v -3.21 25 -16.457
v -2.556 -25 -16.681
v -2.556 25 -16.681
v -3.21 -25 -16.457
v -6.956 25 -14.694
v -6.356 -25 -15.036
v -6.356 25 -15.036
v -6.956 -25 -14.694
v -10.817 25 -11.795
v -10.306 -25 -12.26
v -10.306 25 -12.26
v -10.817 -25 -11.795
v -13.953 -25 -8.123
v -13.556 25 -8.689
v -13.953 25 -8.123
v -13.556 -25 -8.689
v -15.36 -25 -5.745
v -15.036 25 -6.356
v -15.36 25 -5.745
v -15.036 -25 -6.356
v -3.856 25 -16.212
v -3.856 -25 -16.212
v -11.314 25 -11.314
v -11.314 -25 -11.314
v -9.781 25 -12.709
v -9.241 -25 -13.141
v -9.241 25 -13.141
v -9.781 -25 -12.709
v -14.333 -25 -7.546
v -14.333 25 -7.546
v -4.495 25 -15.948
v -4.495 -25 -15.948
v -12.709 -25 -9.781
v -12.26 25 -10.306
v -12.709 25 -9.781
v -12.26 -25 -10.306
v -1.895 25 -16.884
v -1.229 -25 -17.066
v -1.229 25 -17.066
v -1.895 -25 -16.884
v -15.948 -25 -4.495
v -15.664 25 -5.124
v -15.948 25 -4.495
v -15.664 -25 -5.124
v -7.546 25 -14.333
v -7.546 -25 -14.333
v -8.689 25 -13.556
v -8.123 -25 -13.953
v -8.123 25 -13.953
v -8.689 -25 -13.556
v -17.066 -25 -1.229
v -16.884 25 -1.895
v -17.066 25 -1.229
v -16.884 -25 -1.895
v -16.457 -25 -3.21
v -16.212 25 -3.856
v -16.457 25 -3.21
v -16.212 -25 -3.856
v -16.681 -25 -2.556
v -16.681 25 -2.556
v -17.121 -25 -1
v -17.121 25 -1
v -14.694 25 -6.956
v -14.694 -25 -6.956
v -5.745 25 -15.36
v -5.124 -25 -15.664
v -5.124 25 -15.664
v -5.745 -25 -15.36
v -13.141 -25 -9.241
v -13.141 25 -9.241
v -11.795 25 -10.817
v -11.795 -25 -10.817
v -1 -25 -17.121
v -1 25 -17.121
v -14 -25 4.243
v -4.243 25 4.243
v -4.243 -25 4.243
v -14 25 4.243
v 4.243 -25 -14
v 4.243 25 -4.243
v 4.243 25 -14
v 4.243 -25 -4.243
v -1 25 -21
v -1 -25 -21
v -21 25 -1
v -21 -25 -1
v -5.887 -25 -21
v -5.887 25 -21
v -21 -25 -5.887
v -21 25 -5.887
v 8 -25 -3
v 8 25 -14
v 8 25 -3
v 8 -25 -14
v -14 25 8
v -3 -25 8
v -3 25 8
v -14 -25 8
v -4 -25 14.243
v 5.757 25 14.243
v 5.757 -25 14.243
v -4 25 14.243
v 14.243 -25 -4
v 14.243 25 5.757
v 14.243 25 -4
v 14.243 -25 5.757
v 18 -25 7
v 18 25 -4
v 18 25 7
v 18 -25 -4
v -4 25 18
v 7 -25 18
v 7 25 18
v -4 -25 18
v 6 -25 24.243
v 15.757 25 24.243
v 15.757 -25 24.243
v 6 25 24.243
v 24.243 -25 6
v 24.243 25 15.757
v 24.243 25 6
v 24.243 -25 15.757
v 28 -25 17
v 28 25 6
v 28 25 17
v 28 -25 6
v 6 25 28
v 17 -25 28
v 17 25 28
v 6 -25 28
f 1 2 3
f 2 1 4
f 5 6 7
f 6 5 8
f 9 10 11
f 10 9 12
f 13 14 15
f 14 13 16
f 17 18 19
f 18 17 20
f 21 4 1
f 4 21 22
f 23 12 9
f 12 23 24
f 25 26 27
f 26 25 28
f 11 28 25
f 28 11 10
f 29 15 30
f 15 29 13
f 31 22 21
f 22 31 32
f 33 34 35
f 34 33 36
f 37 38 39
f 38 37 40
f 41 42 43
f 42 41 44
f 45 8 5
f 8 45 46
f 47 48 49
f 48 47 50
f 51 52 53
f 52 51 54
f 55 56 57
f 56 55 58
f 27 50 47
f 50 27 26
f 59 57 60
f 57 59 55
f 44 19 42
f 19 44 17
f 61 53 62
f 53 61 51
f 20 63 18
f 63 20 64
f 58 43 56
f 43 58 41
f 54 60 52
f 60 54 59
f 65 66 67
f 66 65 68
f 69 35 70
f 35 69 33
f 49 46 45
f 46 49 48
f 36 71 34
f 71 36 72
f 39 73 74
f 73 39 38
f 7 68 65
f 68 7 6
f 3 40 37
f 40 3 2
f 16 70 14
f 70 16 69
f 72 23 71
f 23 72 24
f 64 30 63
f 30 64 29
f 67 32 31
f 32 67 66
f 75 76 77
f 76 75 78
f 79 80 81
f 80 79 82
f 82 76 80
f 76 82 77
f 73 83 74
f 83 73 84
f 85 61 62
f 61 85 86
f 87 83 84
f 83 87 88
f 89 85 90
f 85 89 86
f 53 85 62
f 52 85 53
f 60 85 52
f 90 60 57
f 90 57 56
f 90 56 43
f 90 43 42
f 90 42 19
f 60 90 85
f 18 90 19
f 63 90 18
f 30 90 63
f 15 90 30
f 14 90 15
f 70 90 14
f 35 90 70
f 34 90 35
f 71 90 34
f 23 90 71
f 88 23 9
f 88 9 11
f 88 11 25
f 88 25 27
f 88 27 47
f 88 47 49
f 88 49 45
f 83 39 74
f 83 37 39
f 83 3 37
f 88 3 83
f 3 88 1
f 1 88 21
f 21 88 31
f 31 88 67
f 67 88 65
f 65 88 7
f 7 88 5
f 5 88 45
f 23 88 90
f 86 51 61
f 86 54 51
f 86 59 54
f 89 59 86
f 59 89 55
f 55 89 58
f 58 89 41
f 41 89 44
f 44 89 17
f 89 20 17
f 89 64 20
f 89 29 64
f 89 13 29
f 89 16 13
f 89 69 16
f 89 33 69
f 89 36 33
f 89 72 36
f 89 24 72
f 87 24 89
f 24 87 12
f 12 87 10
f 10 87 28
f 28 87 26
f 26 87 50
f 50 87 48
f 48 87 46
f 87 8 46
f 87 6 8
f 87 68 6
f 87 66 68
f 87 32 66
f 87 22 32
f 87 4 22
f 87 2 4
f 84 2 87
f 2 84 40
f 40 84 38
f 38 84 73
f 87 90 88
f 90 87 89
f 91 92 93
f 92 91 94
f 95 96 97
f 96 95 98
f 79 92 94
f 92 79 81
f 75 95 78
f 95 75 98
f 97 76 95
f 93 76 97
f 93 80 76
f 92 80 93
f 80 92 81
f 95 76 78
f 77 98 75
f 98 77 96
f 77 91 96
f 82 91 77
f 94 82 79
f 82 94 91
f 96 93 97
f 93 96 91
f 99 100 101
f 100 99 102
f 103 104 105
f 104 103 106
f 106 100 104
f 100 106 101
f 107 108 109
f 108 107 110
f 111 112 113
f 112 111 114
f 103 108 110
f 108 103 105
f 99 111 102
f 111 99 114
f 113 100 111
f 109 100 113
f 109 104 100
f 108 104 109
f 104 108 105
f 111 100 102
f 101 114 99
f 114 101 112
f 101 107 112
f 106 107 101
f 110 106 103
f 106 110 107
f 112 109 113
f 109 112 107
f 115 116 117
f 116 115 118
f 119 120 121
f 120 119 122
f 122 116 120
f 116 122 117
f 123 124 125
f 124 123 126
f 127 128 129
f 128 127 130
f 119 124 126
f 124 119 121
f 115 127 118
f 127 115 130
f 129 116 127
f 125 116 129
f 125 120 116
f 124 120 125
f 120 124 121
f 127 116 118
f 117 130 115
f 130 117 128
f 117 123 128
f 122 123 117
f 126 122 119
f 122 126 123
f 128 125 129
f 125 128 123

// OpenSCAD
// file: beam_holder.scad
include <constants.scad>

use <helpers.scad>

module wood_beam(length=100, diameter=BEAM_DIAMETER, cut_height=6) {
    radius = diameter / 2;
    cut_width = diameter + 2;
    translate([0, 0, cut_height]) {
        difference() {
            rotate([0,-45,0]) {
                difference() {
                    rotate([-90,0,0]) {
                        cylinder(length, radius, radius);
                    }
                    translate([-cut_width / 2, -1, 0]) {
                        cube([cut_width, length + 2, cut_width]);
                    }
                    translate([0, -1, -cut_width / 2]) {
                        cube([cut_width, length + 2, cut_width]);
                    }
                }
            }
            translate([-cut_width / 2, -1, -cut_height]) {
                cube([cut_width, length + 2, cut_width]);
            }
        }
    }
}


module screw_block_joint(width=SCREW_BLOCK_WIDTH, bracket=BRACKET_WALL, outline=0) {
    translate([-8 - outline, 0, bracket - outline]) {
        soft_corner_bracket(bracket + 1 + outline, width, bracket + 2 * outline);
    }
    translate([8 + outline, 0, bracket - outline]) {
        mirror([1, 0, 0]) {
            soft_corner_bracket(bracket + 1 + outline, width, bracket + 2 * outline);
        }
    }
    translate([-5 - outline, 0, -1]) {
        cube([10 + 2 * outline, width, 2 * bracket + 1 + outline]);
    }

        translate([-5 - outline, 0, bracket - outline]) {
            fillet(width, 1);
        }
        translate([5 + outline, 0, bracket - outline]) {
            mirror([1, 0, 0]) fillet(width, 1);
        }

}


module wood_beam_with_block(length=10, diameter=BEAM_DIAMETER, cut_height=6, b_height=25, inset=0) {
    join_to = (cos(45) *  diameter / 2) - cut_height;
    b_width = (sin(45) *  diameter) - (inset*2);
    if (diameter != BEAM_DIAMETER) { echo(b_width); }
    wood_beam(length, diameter);
    translate([-b_width/2, 0, -join_to]) cube([b_width, length, b_height + join_to]);
}

module wood_beam_loop(length=SCREW_BLOCK_WIDTH, height=25, diameter=BEAM_DIAMETER, r=BEAM_LOOP_DELTA, i=1) {
    outer_diameter = diameter + 2 * r;
    difference() {
        wood_beam_with_block(length, outer_diameter, b_height=height);
        translate([0, -1, 0]) {
            wood_beam_with_block(length+2, diameter, b_height=height+1, inset=i);
            hull() {
                wood_beam(length+2, diameter);
                translate([0, 0, JOINT_SAFETY]) {
                    wood_beam(length+2, diameter);
                }
            }
        }
    }
}

module wood_beam_holder_joint(length=SCREW_BLOCK_WIDTH, diameter=BEAM_DIAMETER, bracket=BRACKET_WALL, i=1) {
    width = (sin(45) *  diameter - 2 * i);
    translate([0, 0, 0]) {
        screw_block_joint(length, bracket);
    }
    translate([-width/2, 0, -bracket - JOINT_SAFETY]) {
        cube([width, length, bracket]);
    }

    translate([width/2, 0, -bracket - JOINT_SAFETY]) {
        fillet(length);
    }
    translate([-width/2, 0, -bracket - JOINT_SAFETY]) {
        mirror([1,0,0]) fillet(length);
    }
}

module wood_beam_holder(length=SCREW_BLOCK_WIDTH, height=LOOP_WALL_HEIGHT, diameter=BEAM_DIAMETER, r=BEAM_LOOP_DELTA, i=1, bracket=BRACKET_WALL) {
    inner_width = (sin(45) *  diameter - 2 * i);
    outer_width = (sin(45) *  (diameter + 2 * r));
    translate([0, 0, -height - JOINT_SAFETY]) {
        wood_beam_loop(length, height, diameter, r, i);
    }
    wood_beam_holder_joint(length, diameter, bracket);
}

module senkkopf(outer_diameter=10, inner_diameter=4, height=20) {
    outer_radius = outer_diameter / 2;
    inner_radius = inner_diameter / 2;
    radius_diff = outer_radius - inner_radius;
    cylinder(radius_diff, outer_radius, inner_radius);
    cylinder(height, inner_radius, inner_radius);
}

module screw_block_base(width=SCREW_BLOCK_WIDTH) {
    difference() {
        translate([-LOOP_ATTACHMENT_WIDTH / 2, 0, 0]) {
            cube([LOOP_ATTACHMENT_WIDTH, width, LOOP_ATTACHMENT_HEIGHT]);
        }
        // roof
        translate([0, -1, LOOP_ATTACHMENT_HEIGHT]) {
            rotate([0, 90 - DWARF_ANGLE / 2, 0]) {
                cube([LOOP_ATTACHMENT_WIDTH, width + 2, LOOP_ATTACHMENT_HEIGHT]);
            }
        }
        translate([-LOOP_ATTACHMENT_WIDTH /2, -1, 0]) {
            rotate([0, 270 + DWARF_ANGLE / 2, 0]) {
                cube([LOOP_ATTACHMENT_WIDTH, width + 2, LOOP_ATTACHMENT_HEIGHT]);
            }
        }
        translate([0, -50, LOOP_ATTACHMENT_HEIGHT]) {
            roof();
        }
        // joint for lower thingy
        translate([0, -1, 0]) {
            screw_block_joint(SCREW_BLOCK_WIDTH+2, BRACKET_WALL, outline=JOINT_SAFETY);
        }
        // screw hole
        translate([0, width/2, 2 * BRACKET_WALL-0.5]){
            senkkopf();
        }
    }
}

screw_block_base();
// file: angled_plates.scad
function join_width(width, angle) =
    let (half_angle = angle / 2)
    let (x_cut = width / cos(half_angle))
    x_cut / tan(half_angle);


module angled_plate_round_corner(diameter=5, angle=45, length=100) {
    radius = diameter / 2;
    half_angle = angle / 2;
    x_width = cos(half_angle) * diameter;
    y_height = (x_width / 2) / tan(half_angle);
    y_cylinder_offset = sin(half_angle) * radius;
    translate([0, 0, -y_height]) {
        difference() {
            translate([-x_width/2, 0, 0]) {
                cube([x_width, length, y_height]);
            }
            translate([0, -5, -y_cylinder_offset]) {
                rotate([-90, 0, 0]){
                    cylinder(length + 10, radius, radius);
                }
            }
        }
    }
}


module angled_plates_helper(length=100, height=50, width=10, angle=85, corner_diameter=5) {
    half_angle = angle / 2;
    z_offset = join_width(width, angle);
    union() {
        rotate([0, half_angle, 0]) {
            translate([-0, 0, -height]) {
                cube ([width, length, height]);
            }
        }
        rotate([0, -half_angle, 0]) {
            translate([-width, 0, -height]) {
                cube ([width, length, height]);
            }
        }
        translate([0,0, -z_offset]) {
            angled_plate_round_corner(corner_diameter, angle, length);
        }
    }
}

module angled_plates(length=100, height=50, width=10, angle=85, outer_diameter=10, inner_diameter=5) {
    half_angle = angle/2;
    z_offset = join_width(width, angle);
    rotate([0 ,-half_angle-90, 0]) {
        union() {
            difference () {
                angled_plates_helper(length, height, width, angle, inner_diameter);
                translate([0, -1, z_offset]) {
                    angled_plates_helper(length+2, height, width, angle, outer_diameter);
                }
            }
        }
    }
}

angled_plates();
// file: helpers.scad
include <constants.scad>

use <angled_plates.scad>

module fillet(length=10, radius=5) {
    join_safety = 0.5;
    translate([-radius, 0, -radius]) {
        difference() {
            cube([radius + join_safety, length, radius  + join_safety]);
            translate([0, -1, 0]) {
                rotate([-90, 0, 0]) {
                    cylinder(length + 2, radius, radius);
                }
            }
        }
    }
}


module soft_corner_bracket(length=5, width=5, height=3) {
    radius = height / 4;
    translate([radius, 0, 0 ]) cube([length-radius, width, height]);
    translate([0, 0, radius ]) cube([length, width, height-radius*2]);
    translate([radius, 0, radius]) rotate([-90, 0, 0])cylinder(width, radius, radius);
    translate([radius, 0, height-radius]) rotate([-90, 0, 0])cylinder(width, radius, radius);
}

module living_room_roof(angle=LIVING_ROOM_ANGLE, length=100) {
    rotate([90-angle,0,0]) {
        translate([-length*2, -length, -length*2]) {
            cube([length*4, length , length*4]);
        }
    }
}

module roof(angle=DWARF_ANGLE, diameter=5, lr_angle=LIVING_ROOM_ANGLE, length=100, width=5) {
    half_angle = angle/2;
    z_offset = join_width(5, angle);
    translate([0, 0, z_offset]) {
        difference() {
            rotate([0 ,half_angle+90, 0]) {
                angled_plates(length, 100, width, angle, diameter*2, diameter);
            }
            living_room_roof(lr_angle, length);
        }
    }
}
// file: constants.scad
BEAM_DIAMETER = 44;
BEAM_LOOP_DELTA = 1;
BEAM_LOOP_DIAMETER = BEAM_DIAMETER + 2 * BEAM_LOOP_DELTA;
DWARF_ANGLE = 85;
LIVING_ROOM_ANGLE = 37;

LOOP_WALL_HEIGHT = 15;
LOOP_ATTACHMENT_WIDTH = (sin(45) *  BEAM_LOOP_DIAMETER);
LOOP_ATTACHMENT_HEIGHT = (LOOP_ATTACHMENT_WIDTH/2) / tan(DWARF_ANGLE/2);

SCREW_BLOCK_WIDTH = 15;
BRACKET_WALL = 3;
BRACKET_LENGTH = 5;
JOINT_SAFETY = 0.2;

ELECTRONIC_BASE_HEIGHT = 2;
ELECTRONIC_DIAMETER = 44; // must be large enough to fit the electronics

$fn = 200;
// main file
include <constants.scad>

use <helpers.scad>
use <angled_plates.scad>
use <beam_holder.scad>

module round_part() {
    difference() {
        translate([-21, -25, -21]) cube([20, 50, 20]);
        translate([0, -50, 0]) rotate([0,45,0]) wood_beam();
        translate([-37, -26, -21]) rotate([0,45,0]) cube([22, 52, 22]);
    }
}

module edge_part() {
    difference() {
        translate([-14, -25, -14]) cube([22, 50, 22]);
        translate([0, -50, 0]) rotate([0,45,0]) wood_beam();
        translate([-6, -26, 11]) rotate([0,45,0]) cube([24, 52, 22]);
        translate([-15, -26, -15]) cube([8, 52, 8]);
    }
}

round_part();
edge_part();

translate([10, 0, 10]) edge_part();
translate([20, 0, 20]) edge_part();
